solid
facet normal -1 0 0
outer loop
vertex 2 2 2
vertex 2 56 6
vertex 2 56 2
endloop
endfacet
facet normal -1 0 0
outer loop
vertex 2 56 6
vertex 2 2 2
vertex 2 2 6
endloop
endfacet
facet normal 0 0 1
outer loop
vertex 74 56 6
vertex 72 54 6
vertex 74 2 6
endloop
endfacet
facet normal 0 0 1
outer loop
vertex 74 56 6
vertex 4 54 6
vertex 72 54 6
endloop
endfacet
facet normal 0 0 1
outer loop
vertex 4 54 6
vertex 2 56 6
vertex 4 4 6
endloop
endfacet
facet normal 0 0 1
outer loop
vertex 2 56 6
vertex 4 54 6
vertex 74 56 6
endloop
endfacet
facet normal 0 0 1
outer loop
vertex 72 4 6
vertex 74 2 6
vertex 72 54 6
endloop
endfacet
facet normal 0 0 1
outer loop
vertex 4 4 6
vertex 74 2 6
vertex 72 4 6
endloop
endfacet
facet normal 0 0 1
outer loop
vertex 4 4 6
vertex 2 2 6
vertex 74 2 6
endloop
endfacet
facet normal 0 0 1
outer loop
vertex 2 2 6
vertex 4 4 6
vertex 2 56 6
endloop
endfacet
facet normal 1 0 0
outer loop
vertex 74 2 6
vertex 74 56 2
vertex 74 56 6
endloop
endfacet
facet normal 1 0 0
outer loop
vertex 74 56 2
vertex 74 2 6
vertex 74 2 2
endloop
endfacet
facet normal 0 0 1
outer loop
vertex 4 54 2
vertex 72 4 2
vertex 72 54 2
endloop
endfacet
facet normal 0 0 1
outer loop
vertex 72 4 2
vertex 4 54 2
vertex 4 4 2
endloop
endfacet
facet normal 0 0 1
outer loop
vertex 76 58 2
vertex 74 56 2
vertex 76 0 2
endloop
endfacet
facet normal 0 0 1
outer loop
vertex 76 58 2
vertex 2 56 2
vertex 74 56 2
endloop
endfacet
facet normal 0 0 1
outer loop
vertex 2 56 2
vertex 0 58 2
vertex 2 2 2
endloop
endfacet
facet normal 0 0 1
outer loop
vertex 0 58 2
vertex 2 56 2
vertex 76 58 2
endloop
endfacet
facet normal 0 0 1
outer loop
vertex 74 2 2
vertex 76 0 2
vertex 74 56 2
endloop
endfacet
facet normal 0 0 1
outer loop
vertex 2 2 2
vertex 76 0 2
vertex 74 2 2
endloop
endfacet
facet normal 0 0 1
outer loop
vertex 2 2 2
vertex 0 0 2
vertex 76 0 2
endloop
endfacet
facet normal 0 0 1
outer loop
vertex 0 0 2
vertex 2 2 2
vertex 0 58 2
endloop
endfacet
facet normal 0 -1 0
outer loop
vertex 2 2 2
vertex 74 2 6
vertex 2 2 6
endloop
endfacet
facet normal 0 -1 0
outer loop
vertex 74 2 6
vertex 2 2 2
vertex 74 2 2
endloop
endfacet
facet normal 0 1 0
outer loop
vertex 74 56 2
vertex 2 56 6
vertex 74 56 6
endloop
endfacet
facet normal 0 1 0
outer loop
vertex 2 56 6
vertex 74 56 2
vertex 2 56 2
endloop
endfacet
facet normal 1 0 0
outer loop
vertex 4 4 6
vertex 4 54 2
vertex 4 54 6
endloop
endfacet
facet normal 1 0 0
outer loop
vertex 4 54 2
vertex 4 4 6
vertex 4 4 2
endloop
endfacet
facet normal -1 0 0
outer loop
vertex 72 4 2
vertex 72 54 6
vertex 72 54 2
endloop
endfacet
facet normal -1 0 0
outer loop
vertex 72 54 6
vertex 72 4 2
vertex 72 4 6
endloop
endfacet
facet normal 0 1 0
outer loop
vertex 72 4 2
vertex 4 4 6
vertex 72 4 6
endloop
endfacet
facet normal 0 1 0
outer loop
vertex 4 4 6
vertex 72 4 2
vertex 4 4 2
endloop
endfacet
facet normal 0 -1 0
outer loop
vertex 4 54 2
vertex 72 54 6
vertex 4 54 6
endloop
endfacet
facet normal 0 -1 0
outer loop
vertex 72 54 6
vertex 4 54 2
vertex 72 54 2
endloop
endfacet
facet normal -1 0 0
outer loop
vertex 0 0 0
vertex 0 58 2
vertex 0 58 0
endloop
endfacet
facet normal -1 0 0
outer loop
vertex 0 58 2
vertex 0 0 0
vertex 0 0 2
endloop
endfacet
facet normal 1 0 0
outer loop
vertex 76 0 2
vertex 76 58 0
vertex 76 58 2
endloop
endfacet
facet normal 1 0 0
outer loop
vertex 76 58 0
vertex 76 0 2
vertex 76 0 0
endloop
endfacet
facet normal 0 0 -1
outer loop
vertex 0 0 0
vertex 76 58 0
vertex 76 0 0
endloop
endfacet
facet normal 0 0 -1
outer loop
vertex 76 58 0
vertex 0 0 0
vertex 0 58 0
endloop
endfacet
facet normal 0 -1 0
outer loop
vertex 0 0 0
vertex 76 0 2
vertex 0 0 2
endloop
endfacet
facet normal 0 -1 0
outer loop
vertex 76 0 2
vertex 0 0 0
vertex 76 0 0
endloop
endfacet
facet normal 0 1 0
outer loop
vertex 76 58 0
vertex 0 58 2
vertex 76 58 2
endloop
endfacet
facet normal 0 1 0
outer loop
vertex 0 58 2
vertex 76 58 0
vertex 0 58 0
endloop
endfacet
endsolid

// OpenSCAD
arduino_length=72;
arduino_width=54;
thickness=2;

cube([arduino_length + 2 * thickness, arduino_width + 2 * thickness, thickness]);
difference() {
    translate([1 * thickness, 1 * thickness, thickness]) cube([arduino_length- 0 * thickness, arduino_width-0 * thickness, 2 * thickness]);
translate([2 * thickness, 2 * thickness, thickness]) cube([arduino_length-2 * thickness, arduino_width-2 * thickness, 2 * thickness]);
}
